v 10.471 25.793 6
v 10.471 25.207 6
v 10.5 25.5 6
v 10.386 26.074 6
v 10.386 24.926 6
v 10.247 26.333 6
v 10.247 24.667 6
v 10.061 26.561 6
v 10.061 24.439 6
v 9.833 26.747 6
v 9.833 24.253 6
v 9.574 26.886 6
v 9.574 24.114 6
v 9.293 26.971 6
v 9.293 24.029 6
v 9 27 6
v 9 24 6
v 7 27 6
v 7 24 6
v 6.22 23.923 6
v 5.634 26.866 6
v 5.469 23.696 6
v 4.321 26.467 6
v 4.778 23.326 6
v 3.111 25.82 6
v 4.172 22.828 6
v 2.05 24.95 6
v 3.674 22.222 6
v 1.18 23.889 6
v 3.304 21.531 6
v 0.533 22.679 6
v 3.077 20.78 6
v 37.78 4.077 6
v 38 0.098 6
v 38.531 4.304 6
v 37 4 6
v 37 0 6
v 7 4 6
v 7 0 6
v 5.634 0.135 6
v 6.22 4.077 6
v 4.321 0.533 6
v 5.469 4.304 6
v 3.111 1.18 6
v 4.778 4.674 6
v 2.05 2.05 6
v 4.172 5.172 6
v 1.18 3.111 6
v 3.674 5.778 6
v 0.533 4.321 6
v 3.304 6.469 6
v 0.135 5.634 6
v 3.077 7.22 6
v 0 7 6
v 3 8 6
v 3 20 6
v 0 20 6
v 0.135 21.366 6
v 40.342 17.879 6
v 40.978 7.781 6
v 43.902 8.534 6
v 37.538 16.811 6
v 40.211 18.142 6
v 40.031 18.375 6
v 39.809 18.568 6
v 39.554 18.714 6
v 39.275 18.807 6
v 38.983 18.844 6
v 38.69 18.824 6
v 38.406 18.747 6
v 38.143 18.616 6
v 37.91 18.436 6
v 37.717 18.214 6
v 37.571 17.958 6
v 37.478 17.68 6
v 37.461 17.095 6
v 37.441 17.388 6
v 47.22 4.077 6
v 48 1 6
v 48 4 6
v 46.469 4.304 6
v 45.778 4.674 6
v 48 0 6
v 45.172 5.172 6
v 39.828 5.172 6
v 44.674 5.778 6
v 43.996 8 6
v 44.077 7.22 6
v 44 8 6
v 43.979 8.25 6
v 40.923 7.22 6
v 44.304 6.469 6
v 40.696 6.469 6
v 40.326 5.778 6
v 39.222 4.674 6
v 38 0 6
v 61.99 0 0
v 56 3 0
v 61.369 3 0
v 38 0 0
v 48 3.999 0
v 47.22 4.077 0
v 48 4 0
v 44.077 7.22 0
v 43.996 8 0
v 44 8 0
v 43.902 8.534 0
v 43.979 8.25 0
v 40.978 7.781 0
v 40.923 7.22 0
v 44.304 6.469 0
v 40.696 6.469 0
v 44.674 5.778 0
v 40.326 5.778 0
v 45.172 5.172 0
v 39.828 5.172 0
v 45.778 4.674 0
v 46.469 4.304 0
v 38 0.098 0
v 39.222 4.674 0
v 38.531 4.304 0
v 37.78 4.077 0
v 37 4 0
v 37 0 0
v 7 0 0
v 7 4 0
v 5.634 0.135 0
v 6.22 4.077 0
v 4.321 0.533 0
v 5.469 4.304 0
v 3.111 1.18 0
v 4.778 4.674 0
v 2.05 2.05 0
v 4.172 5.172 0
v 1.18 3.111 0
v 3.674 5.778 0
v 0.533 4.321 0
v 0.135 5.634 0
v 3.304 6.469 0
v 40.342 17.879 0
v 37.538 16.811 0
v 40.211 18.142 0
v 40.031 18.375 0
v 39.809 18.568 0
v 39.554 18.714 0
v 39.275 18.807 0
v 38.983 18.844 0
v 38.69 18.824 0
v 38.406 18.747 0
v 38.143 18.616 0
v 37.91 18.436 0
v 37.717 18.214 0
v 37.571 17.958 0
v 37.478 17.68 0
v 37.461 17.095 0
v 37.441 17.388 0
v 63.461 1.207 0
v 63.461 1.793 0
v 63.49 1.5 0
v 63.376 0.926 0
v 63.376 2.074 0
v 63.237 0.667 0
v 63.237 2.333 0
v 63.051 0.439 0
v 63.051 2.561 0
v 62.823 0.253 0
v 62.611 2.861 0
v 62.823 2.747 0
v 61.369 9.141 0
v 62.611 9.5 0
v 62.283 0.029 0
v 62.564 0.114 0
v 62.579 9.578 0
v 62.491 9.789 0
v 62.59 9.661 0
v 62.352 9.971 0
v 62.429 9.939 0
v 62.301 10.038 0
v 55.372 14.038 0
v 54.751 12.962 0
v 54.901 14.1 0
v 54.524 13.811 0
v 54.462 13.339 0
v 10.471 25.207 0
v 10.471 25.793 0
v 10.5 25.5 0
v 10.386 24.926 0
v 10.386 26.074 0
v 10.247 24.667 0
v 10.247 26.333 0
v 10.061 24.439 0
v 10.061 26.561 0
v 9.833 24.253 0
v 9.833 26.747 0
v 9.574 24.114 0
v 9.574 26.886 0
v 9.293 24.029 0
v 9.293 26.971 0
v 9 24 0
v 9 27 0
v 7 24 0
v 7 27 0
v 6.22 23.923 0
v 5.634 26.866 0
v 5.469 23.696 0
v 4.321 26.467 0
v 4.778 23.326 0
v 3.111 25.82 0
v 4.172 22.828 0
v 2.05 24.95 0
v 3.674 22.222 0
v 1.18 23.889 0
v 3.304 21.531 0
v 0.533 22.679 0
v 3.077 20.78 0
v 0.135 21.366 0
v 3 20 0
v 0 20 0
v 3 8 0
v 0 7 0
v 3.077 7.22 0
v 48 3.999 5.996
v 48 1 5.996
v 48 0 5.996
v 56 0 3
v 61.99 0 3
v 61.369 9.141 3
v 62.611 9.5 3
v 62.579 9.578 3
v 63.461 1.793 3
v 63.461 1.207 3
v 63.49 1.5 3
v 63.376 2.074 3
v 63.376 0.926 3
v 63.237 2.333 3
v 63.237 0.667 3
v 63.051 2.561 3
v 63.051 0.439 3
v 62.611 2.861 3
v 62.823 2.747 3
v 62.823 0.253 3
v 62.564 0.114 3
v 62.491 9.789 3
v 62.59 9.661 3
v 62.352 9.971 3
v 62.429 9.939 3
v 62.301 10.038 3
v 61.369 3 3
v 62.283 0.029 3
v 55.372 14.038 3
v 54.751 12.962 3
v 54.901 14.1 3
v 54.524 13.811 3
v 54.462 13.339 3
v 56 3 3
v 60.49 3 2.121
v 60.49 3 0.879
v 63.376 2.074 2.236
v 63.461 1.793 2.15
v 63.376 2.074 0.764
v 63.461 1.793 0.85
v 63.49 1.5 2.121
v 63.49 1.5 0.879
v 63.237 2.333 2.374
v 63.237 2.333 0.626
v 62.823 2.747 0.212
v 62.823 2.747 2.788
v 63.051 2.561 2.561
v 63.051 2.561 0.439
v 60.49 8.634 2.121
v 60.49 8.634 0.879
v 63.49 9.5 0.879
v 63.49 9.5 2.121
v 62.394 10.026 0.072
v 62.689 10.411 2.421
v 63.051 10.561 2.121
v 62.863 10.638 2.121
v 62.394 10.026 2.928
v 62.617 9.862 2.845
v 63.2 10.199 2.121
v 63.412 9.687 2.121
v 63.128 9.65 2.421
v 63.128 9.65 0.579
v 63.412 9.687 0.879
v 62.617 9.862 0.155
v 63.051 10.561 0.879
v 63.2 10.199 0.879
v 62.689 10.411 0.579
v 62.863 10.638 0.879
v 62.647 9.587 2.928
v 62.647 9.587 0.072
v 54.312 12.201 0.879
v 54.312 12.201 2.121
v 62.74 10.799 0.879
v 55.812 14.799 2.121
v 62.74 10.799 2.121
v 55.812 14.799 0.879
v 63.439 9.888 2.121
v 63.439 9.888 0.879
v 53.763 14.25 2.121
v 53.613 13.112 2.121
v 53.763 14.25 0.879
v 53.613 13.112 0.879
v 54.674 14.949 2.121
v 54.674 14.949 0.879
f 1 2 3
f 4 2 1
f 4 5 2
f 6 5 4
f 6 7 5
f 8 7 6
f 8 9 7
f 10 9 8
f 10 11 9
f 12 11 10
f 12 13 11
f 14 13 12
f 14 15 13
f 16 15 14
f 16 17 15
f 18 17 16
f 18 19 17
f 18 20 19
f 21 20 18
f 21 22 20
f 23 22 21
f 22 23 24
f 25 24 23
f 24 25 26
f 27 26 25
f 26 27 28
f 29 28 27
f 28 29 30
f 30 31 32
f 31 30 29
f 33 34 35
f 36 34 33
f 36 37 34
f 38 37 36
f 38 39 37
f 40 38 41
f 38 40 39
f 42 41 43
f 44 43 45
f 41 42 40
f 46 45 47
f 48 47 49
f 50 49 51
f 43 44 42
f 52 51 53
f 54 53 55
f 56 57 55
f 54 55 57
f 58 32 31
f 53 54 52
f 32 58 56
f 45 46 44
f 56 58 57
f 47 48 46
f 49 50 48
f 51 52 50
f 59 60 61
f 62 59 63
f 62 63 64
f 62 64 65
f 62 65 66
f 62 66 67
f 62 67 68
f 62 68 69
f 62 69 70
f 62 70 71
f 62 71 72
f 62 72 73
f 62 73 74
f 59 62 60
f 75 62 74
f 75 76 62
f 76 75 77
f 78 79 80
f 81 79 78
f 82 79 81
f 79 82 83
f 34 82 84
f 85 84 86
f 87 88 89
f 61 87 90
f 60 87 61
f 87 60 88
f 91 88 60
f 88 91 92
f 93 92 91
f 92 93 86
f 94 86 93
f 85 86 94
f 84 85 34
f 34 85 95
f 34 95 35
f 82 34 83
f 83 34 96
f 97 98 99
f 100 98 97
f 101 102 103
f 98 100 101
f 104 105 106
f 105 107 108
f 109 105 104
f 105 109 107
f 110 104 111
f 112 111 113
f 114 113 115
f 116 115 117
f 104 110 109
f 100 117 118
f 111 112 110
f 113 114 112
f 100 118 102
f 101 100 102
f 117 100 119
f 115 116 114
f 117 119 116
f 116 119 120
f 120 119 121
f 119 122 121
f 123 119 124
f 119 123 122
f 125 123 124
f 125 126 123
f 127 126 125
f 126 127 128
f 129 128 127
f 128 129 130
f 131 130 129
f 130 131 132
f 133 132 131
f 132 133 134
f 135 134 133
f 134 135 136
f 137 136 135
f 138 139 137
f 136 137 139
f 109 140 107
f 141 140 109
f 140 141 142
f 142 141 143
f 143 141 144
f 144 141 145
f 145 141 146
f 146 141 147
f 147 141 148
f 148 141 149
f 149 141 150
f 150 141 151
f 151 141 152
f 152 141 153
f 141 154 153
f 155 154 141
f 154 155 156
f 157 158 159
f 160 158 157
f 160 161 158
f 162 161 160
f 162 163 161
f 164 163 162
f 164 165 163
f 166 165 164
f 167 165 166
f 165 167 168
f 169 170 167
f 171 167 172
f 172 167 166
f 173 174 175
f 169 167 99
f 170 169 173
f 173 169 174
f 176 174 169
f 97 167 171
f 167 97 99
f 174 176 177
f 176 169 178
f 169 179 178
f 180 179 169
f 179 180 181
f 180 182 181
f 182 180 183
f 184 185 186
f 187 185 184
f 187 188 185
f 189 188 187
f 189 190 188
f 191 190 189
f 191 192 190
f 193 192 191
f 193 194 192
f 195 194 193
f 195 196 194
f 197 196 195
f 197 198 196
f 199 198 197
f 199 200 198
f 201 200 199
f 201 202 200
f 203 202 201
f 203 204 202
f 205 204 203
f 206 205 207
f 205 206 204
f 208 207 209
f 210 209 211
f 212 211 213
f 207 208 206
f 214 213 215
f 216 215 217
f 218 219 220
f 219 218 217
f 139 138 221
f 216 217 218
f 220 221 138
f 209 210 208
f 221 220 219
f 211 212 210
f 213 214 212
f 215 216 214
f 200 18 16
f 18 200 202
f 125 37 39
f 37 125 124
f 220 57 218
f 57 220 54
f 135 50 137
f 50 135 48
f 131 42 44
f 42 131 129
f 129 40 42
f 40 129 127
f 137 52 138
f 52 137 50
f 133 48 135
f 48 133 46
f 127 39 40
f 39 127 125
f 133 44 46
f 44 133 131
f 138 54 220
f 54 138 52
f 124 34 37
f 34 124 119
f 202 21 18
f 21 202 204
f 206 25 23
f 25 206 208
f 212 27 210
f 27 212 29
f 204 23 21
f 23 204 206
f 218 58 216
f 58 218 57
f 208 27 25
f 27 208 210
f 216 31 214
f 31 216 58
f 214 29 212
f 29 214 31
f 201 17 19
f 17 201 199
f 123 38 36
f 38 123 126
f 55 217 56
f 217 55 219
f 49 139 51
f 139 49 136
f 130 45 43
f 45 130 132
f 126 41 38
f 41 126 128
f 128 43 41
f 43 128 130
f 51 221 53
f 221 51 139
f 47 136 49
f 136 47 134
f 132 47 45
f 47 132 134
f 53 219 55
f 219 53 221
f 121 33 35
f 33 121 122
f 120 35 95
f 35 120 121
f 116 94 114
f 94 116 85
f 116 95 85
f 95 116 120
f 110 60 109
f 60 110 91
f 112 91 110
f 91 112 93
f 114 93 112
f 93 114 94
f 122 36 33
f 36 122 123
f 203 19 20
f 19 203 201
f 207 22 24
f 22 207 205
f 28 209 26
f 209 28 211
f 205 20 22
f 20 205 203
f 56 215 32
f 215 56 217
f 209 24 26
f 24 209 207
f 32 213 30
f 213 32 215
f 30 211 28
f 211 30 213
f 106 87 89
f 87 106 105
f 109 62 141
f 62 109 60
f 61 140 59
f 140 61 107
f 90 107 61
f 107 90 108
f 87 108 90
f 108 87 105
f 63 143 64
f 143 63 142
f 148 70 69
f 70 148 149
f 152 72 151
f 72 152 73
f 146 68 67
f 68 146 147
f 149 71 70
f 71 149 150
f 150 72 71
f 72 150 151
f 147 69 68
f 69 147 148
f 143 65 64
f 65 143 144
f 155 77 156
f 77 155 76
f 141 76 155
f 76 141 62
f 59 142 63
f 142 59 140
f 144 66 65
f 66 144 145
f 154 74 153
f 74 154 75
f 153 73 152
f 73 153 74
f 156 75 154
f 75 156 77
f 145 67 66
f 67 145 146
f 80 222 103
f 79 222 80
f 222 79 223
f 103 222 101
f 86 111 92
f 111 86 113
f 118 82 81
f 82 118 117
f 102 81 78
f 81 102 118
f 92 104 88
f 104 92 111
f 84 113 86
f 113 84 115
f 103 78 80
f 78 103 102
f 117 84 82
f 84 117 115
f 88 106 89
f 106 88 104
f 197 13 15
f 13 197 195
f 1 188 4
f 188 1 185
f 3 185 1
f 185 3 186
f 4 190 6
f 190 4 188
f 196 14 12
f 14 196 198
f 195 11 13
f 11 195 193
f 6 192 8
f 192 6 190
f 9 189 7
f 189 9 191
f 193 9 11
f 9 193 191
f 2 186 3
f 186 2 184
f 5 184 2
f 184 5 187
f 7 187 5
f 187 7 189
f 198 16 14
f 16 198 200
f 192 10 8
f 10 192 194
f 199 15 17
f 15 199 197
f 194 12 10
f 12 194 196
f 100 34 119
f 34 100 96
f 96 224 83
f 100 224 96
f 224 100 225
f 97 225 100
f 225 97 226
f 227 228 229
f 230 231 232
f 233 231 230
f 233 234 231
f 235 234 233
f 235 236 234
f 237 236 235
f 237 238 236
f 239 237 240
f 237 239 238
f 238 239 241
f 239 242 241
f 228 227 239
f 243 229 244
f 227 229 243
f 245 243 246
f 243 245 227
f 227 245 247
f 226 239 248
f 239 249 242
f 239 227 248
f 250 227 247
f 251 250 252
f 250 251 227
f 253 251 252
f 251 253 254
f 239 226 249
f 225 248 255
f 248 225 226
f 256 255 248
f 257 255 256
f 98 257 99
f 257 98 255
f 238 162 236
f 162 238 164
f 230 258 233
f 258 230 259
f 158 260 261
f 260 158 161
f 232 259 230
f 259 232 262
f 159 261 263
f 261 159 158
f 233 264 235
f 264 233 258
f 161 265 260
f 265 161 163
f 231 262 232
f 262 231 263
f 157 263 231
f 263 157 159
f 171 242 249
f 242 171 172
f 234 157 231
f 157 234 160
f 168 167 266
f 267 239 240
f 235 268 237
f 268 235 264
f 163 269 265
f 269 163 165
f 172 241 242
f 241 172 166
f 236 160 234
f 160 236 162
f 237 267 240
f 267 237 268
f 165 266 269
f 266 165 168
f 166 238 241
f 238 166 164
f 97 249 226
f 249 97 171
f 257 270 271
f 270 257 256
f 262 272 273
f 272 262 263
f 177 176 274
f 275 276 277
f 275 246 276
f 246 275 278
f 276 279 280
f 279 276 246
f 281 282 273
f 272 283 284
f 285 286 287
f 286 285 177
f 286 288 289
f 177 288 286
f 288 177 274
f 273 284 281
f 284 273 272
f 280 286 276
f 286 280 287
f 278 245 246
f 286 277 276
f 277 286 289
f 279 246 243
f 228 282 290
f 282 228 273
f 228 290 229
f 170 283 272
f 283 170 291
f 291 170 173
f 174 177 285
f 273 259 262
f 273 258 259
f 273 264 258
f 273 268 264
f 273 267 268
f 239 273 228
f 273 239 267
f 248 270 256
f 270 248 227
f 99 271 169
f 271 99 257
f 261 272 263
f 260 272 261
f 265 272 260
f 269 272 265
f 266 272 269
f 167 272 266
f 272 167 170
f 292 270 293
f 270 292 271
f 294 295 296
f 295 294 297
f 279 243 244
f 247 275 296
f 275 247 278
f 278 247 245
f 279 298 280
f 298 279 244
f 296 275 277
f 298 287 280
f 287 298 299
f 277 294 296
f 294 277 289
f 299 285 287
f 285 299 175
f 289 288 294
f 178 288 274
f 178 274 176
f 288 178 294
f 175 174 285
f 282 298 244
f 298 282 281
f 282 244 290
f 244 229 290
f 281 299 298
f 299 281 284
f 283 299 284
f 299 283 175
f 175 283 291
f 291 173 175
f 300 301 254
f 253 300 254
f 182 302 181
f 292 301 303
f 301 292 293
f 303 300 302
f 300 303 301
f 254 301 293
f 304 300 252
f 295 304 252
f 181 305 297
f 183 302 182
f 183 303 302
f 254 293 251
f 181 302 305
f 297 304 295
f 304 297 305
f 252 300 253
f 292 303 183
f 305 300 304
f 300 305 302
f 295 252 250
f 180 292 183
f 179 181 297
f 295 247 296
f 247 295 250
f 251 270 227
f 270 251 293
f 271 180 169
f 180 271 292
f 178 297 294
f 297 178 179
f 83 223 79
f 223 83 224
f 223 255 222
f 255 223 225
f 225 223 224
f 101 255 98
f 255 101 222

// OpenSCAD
delta = 0.01 ;

t_hook_back   = 4 ;
t_hook_top    = 3 ;
t_hook_bottom = 3 ;
w_hook_bottom = 4 ;
t_hook_front  = 3 ;
l_hook_front  = 6 ;
l_hook_angled = 10 ;
a_hook_angled = atan2(8,21) ;
r_inner       = 4 ;
r_outer       = r_inner+3 ;
r_fillet      = 4 ;

module rounded_rectangle(l, w, r, t) {
    translate([r,0,0])
        cube(size=[l-2*r,w,t]) ;
    translate([0,r,0])
        cube(size=[l,w-2*r,t]) ;
    translate([r,r,0])
        cylinder(h=t, r=r, $fn=32) ;
    translate([l-r,r,0])
        cylinder(h=t, r=r, $fn=32) ;
    translate([r,w-r,0])
        cylinder(h=t, r=r, $fn=32) ;
    translate([l-r,w-r,0])
        cylinder(h=t, r=r, $fn=32) ;
}


module fillet_x_y(r, t, overlap) {
    // Fillet between X and Y axes
    difference() {
        translate([-overlap, -overlap, 0])
            cube(size=[r+overlap,r+overlap,t]) ;
        translate([r, r, -delta])
            cylinder(r=r, h=t+2*delta, $fn=32) ;
    }
}

module oval_x(l, w, t) {
    // l is distance between centres of the rounded ends
    // w is width of oval (also diameter of rounded ends)
    // t is thickness of oval
    translate([0,-w/2,0])
        cube(size=[l, w, t]) ;
    cylinder(d=w, h=t, $fn=32) ;
    translate([l,0,0])
        cylinder(d=w, h=t, $fn=32) ;
}


module sossij_x(l, w) {
    // Like an oval, but with "rounded" cross-section.
    // (actually, octagonal, to allow the overhang to print)
    od = w/cos(22.5) ;
    intersection() {
        // oval_x(l, w, w) ;
        union() {
            translate([0,-w/2,0])
                cube(size=[l, w, w]) ;
            translate([0,0,w/2])
                sphere(d=od, $fn=8) ;
            translate([l,0,w/2])
                sphere(d=od, $fn=8) ;

        }



        translate([-w,0,w/2])
            rotate([0,90,0])
                rotate([0,0,22.5])
                    cylinder(d=od, h=l+w*2, $fn=8) ;
    }
}


// Awning rail hook, with upper inner corner on the origin, and
// inner back of hook extending along the X axis
//
// l_inner      is length of inside of hook (height of awning rail)
// l_stub       is overall length of stub for clip at other end.
// w_inner      is width of inside of hook (thickness of awning rail)
// t_hook       is the thickness of the hook.
//
module awning_rail_hook(l_inner, w_inner, t_hook, l_stub) {
    l_overall = l_inner + t_hook_top + t_hook_bottom + l_stub ;
    w_overall = w_inner + t_hook_back + t_hook_front ; 
    difference() {
        rounded_rectangle(
            l_inner+t_hook_top+t_hook_bottom, 
            w_inner+t_hook_back+t_hook_front, 
            r_outer, t_hook) ;
        translate([t_hook_top,t_hook_back,-delta])
            rounded_rectangle(
                l_inner, 
                w_inner, 
                r_inner, t_hook+2*delta) ;
        translate([t_hook_top+l_hook_front, t_hook_back+w_hook_bottom, -delta])
            cube(size=[l_overall,w_overall,t_hook+2*delta]) ;
    }

    // Round off top of hook 
    translate([t_hook_top+l_hook_front,w_inner + t_hook_back + t_hook_front/2,0])
        cylinder(d=t_hook_front, h=t_hook, $fn=32) ;

    // Bottom retainer
    translate([l_inner + t_hook_top + t_hook_bottom/2, t_hook_back + w_hook_bottom,0])
        //cylinder(d=t_hook_bottom, h=t_hook, $fn=32) ;
        rotate([0,0,90+a_hook_angled])
            oval_x(l_hook_angled, t_hook_bottom, t_hook) ;

    // Stub and fillet
    translate([l_inner,0,0])
        cube(size=[l_stub+t_hook_bottom+t_hook_top,t_hook_back,t_hook]) ;
    translate([l_inner+t_hook_bottom+t_hook_top,t_hook_back,0])
        fillet_x_y(r_fillet, t_hook, t_hook_bottom) ;
}


module tapered_cuboid(l,w1,h1,w2,h2) {
    y21 = (w1-w2)/2 ;
    y22 = (w1+w2)/2 ;
    // NOTE: a bug in OpenSCAD can result in rendering errors (but not preview errors)
    // if the faces are listed with differing "winding order".  This code fixes the 
    // problem by listing vertices for each face in clockwise sequence when looking 
    // towards the centre of the polyhedron.
    polyhedron(
        points=[ [0,0,0],   [0,w1,0],  [0,w1,h1],  [0,0,h1],     // 0
                 [l,0,0],   [l,w2,0],  [l,w2,h2],  [l,0,h2]      // 4
                 // [l,y21,0], [l,y22,0], [l,y22,h2], [l,y21,h2]    // 4
               ],
        faces=[ [0,1,2,3], [0,4,5,1], [0,3,7,4], [1,5,6,2], [2,6,7,3], [4,7,6,5] ]
    ) ;


}

module simple_hook(l_lower_hook, w_lower_hook, t_lower_hook) {
    translate([0,t_lower_hook/2,0]) {
        oval_x(l_lower_hook, t_lower_hook, t_lower_hook) ;
        translate([l_lower_hook,0,0]) {
            rotate([0,0,90])
                sossij_x(w_lower_hook, t_lower_hook) ;
        }
        translate([l_lower_hook,w_lower_hook,0]) {
            rotate([0,0,90+60])
                sossij_x(w_lower_hook, t_lower_hook) ;
        }
    }
}

module lower_hook(l_stub, t_hook, l_taper, l_lower_hook, w_lower_hook, t_lower_hook) {
    cube(size=[l_stub+delta,t_hook_back,t_hook]) ;
    translate([l_stub,0,0])
        tapered_cuboid(l_taper+delta, t_hook_back, t_hook, t_lower_hook, t_lower_hook) ;
    translate([l_stub+l_taper,0,0])
        simple_hook(l_lower_hook, w_lower_hook, t_lower_hook) ;
}

// Print

// Small awning rail hook
l_inner = 38 ;
w_inner = 20 ;
t_hook  = 6 ;
l_stub  = 2 ;
awning_rail_hook(l_inner, w_inner, t_hook, l_stub) ;

// Lower
l_taper = 8 ;
l_lower_hook = 6 ;
w_lower_hook = 8 ;
t_lower_hook = 3 ;
translate([l_inner+t_hook_top+t_hook_bottom+l_stub-delta,0,0])
    lower_hook(l_stub, t_hook, l_taper, l_lower_hook, w_lower_hook, t_lower_hook) ;
